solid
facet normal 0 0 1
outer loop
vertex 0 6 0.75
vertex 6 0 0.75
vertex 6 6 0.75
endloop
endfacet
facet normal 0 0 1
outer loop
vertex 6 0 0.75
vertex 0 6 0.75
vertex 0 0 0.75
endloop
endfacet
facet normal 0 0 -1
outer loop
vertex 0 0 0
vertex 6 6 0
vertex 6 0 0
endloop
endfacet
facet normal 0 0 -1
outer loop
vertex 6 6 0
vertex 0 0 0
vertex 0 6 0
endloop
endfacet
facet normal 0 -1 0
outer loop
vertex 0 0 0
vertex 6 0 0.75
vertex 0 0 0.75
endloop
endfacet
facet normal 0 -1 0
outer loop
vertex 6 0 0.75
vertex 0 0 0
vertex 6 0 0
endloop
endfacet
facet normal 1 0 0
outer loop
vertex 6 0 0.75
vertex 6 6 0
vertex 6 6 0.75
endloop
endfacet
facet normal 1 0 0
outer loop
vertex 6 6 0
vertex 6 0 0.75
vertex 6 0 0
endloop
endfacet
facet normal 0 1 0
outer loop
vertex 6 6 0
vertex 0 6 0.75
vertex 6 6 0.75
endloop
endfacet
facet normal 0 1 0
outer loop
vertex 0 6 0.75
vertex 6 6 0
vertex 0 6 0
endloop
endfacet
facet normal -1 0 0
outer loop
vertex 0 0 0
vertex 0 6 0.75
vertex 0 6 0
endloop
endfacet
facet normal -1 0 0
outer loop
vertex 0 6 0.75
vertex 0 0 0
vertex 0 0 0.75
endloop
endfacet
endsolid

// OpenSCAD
/* Warning, this is a very basic generator with a lot of approximation 
input data : [WQFN, SHC, 6x6x0.75mm, 35, , A, C04-25644A]
generated by com.zoubworld.electronics.cad.model3d.Basic
Date : Sun Feb 15 10:50:49 CET 2026
*/

//body
color("black")
translate([0,0,0])
cube([6.0,6.0,0.75], center=false);
